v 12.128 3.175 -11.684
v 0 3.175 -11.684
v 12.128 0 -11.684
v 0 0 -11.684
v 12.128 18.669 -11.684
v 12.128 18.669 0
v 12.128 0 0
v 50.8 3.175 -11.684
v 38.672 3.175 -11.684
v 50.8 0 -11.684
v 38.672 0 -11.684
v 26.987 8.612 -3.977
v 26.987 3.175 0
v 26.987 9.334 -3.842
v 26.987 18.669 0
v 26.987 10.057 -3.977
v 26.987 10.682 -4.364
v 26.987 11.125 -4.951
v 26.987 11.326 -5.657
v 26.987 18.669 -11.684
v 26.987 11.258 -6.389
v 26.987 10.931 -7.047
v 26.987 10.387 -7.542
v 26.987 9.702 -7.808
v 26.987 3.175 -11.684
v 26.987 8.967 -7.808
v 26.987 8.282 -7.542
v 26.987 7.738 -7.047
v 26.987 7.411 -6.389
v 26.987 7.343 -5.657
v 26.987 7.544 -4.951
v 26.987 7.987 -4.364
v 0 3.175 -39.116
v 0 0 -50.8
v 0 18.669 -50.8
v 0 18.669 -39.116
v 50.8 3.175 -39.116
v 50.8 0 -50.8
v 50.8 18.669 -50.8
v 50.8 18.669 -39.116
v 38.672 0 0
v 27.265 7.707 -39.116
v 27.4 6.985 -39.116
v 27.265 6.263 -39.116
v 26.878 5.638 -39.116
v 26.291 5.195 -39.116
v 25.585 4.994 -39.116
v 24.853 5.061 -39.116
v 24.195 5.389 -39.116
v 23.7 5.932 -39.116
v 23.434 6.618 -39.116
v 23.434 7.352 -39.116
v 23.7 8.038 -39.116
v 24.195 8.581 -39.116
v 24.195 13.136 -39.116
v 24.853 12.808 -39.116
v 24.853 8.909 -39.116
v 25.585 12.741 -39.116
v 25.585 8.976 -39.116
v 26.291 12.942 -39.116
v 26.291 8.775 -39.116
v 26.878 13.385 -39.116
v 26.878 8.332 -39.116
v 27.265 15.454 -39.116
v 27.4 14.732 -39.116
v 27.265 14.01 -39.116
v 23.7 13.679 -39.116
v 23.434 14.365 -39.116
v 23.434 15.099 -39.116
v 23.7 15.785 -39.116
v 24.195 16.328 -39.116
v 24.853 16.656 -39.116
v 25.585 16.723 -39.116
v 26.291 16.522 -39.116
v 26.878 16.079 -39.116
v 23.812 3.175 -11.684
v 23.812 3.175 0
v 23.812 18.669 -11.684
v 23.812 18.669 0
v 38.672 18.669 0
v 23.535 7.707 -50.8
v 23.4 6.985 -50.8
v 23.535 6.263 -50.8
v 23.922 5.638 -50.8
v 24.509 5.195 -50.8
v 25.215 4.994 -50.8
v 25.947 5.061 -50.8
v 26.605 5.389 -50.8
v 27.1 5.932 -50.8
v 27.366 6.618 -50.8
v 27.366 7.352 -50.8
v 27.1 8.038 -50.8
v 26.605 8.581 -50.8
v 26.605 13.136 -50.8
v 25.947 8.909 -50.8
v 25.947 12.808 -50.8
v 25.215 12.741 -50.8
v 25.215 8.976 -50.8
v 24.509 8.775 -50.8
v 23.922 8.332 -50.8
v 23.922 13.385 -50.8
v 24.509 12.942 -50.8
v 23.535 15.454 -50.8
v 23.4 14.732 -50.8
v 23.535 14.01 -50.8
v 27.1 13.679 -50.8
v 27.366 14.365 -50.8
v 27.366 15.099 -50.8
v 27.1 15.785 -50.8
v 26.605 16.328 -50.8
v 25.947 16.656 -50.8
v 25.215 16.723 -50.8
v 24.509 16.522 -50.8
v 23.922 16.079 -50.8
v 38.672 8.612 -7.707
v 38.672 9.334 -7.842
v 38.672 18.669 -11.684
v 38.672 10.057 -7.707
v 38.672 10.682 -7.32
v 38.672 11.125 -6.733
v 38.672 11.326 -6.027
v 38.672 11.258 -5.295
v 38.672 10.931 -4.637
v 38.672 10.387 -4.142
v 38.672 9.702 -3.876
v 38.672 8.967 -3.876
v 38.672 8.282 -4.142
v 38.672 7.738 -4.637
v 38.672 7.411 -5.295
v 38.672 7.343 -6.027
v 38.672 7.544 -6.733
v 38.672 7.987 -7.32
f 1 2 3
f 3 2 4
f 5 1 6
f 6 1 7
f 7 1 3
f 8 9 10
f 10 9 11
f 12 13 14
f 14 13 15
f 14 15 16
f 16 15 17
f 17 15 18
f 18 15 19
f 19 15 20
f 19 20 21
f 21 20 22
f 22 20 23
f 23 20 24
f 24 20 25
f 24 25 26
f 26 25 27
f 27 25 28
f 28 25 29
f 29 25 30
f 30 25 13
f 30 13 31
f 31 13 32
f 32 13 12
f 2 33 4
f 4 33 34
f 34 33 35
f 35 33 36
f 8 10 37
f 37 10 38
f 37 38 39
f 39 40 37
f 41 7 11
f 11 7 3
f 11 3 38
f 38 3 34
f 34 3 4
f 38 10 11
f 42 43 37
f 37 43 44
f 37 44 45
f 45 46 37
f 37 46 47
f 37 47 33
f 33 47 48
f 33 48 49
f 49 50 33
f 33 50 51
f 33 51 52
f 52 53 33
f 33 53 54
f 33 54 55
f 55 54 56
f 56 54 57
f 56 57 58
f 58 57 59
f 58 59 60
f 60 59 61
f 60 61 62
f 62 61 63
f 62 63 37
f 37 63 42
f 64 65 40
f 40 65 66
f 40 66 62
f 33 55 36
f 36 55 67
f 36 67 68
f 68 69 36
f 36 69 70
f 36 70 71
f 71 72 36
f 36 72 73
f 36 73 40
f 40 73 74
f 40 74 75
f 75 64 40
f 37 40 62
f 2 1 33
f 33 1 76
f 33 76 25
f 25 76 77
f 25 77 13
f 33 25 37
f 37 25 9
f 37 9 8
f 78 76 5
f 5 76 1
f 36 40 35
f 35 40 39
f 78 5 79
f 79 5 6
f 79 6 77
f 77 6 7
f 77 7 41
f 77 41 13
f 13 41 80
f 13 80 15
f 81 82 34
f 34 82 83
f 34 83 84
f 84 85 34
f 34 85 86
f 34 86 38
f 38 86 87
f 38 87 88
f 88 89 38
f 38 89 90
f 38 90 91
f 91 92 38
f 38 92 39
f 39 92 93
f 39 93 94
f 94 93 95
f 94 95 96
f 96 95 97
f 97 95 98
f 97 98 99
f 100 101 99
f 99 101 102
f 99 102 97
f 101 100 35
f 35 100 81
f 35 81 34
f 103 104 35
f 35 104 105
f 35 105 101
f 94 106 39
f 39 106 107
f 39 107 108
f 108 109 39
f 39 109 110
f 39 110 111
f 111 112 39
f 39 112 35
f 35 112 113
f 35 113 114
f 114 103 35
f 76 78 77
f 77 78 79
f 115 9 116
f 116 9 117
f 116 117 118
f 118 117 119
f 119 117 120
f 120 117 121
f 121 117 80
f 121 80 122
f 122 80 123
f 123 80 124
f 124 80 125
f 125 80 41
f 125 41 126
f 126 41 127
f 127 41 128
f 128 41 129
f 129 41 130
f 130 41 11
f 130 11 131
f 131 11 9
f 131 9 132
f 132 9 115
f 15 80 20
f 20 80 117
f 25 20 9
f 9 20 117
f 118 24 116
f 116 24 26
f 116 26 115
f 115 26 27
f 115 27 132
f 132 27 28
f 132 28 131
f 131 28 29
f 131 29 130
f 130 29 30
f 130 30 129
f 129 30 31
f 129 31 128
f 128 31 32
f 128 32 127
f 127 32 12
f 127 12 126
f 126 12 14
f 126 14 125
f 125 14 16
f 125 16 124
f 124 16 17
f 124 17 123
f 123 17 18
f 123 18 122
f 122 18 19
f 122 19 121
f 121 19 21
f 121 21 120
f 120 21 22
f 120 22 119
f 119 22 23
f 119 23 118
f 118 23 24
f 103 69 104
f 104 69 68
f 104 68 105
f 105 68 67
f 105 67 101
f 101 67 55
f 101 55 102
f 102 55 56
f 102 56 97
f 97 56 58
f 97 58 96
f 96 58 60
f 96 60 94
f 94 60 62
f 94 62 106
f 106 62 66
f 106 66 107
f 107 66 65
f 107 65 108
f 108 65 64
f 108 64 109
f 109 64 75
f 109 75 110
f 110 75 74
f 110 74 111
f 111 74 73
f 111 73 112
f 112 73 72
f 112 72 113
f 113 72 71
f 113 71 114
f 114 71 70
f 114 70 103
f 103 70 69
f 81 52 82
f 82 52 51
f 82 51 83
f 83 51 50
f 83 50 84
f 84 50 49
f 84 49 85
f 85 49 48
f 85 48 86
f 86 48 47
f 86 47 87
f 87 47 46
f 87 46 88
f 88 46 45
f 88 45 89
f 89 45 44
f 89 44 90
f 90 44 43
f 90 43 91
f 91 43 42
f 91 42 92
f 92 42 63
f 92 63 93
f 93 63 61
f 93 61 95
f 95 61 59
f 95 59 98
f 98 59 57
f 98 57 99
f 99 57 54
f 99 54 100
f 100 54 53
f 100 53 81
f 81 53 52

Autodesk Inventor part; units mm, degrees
ref_plane "YZ Plane" through (0, 0, 0) normal (1, 0, 0) x (0, 1, 0)
ref_plane "XZ Plane" through (0, 0, 0) normal (0, 1, 0) x (-1, 0, 0)
ref_plane "XY Plane" through (0, 0, 0) normal (0, 0, 1) x (1, 0, 0)
sketch "Sketch1" plane through (0, 0, 0) normal (0, 0, 1) x (1, 0, 0)
  line L0 (0, 0) -> (50.8, 0)
  line L1 (50.8, 0) -> (50.8, 18.669)
  line L2 (50.8, 18.669) -> (0, 18.669)
  line L3 (0, 18.669) -> (0, 0)
  dimension "d0" = 50.8
  dimension "d1" = 18.669
extrude "Extrusion1" add sketch "Sketch1" against normal blind 50.8
sketch "Sketch2" plane through (0, 0, 0) normal (0, 0, 1) x (1, 0, 0)
  line L0 (50.8, 0) -> (0, 0) projected
  line L1 (25.4, 0) -> (25.4, 3.175)
  line L2 (25.4, 3.175) -> (26.9875, 3.175)
  line L3 (25.4, 3.175) -> (23.8125, 3.175)
  line L4 (23.8125, 3.175) -> (23.8125, 18.669)
  line L5 (0, 18.669) -> (50.8, 18.669) projected
  line L6 (26.9875, 3.175) -> (26.9875, 18.669)
  line L7 (23.8125, 18.669) -> (12.1285, 18.669)
  line L8 (12.1285, 18.669) -> (12.1285, 0)
  line L9 (12.1285, 0) -> (25.4, 0)
  line L10 (26.9875, 18.669) -> (38.6715, 18.669)
  line L11 (38.6715, 18.669) -> (38.6715, 0)
  line L12 (38.6715, 0) -> (25.4, 0)
  line L13 (0, 0) -> (0, 18.669) projected
  line L14 (0, 18.669) -> (0, 0)
  line L15 (50.8, 18.669) -> (50.8, 0) projected
  line L16 (50.8, 18.669) -> (50.8, 0)
  dimension "d4" = 3.175
  dimension "d5" = 1.5875
  dimension "d6" = 1.5875
  dimension "d15" = 11.684
  dimension "d16" = 11.684
sketch "Sketch3" plane through (0, 0, 0) normal (-1, 0, 0) x (0, 0, 1)
  line L0 (0, 0) -> (-50.8, 0) projected
  line L1 (0, 0) -> (0, 3.175)
  line L2 (0, 0) -> (0, 18.669) projected
  line L3 (0, 3.175) -> (-11.684, 3.175)
  line L4 (-50.8, 18.669) -> (-50.8, 0) projected
  line L5 (-50.8, 0) -> (-50.8, 3.175)
  line L6 (-50.8, 3.175) -> (-39.116, 3.175)
  line L7 (0, 18.669) -> (-50.8, 18.669) projected
  line L8 (-39.116, 3.175) -> (-11.684, 3.175)
  line L9 (-11.684, 3.175) -> (-11.684, 18.669)
  line L10 (-11.684, 18.669) -> (-39.116, 18.669)
  line L11 (-39.116, 18.669) -> (-39.116, 3.175)
  dimension "d7" = 3.175
  dimension "d8" = 11.684
  dimension "d9" = 3.175
  dimension "d10" = 11.684
extrude "Extrusion2" cut sketch "Sketch3" against normal blind 50.8 contours L8 L11 L7 L9
extrude "Extrusion3" cut sketch "Sketch2" against normal up to surface (11.684 mm away) contours L0 L11 L5 L15 | L0 L13 L5 L8
extrude "Extrusion4" cut sketch "Sketch2" against normal up to surface (11.684 mm away) contours L3 L4 L5 L6 L2
sketch "Sketch5" plane through (38.6715, 0, 0) normal (1, 0, 0) x (0, 0, -1)
  line L0 (0, 18.669) -> (11.684, 18.669) projected
  circle A0 centre (5.842, 9.3345) radius 2
  point P0 (0, 0)
  dimension "d21" = 4
extrude "Extrusion5" cut sketch "Sketch5" against normal up to surface (11.684 mm away)
sketch "Sketch6" plane through (0, 0, -50.8) normal (0, 0, -1) x (-1, 0, 0)
  line L0 (-50.8, 18.669) -> (-50.8, 0) projected
  line L1 (0, 18.669) -> (-50.8, 18.669) projected
  line L2 (-12.1285, 0) -> (-38.6715, 0) projected
  circle A0 centre (-25.4, 6.985) radius 2
  circle A1 centre (-25.4, 14.732) radius 2
  point P0 (0, 0)
  dimension "d25" = 4
  dimension "d27" = 4
extrude "Extrusion6" cut sketch "Sketch6" against normal up to surface (11.684 mm away)
properties part number "Slit holder"
